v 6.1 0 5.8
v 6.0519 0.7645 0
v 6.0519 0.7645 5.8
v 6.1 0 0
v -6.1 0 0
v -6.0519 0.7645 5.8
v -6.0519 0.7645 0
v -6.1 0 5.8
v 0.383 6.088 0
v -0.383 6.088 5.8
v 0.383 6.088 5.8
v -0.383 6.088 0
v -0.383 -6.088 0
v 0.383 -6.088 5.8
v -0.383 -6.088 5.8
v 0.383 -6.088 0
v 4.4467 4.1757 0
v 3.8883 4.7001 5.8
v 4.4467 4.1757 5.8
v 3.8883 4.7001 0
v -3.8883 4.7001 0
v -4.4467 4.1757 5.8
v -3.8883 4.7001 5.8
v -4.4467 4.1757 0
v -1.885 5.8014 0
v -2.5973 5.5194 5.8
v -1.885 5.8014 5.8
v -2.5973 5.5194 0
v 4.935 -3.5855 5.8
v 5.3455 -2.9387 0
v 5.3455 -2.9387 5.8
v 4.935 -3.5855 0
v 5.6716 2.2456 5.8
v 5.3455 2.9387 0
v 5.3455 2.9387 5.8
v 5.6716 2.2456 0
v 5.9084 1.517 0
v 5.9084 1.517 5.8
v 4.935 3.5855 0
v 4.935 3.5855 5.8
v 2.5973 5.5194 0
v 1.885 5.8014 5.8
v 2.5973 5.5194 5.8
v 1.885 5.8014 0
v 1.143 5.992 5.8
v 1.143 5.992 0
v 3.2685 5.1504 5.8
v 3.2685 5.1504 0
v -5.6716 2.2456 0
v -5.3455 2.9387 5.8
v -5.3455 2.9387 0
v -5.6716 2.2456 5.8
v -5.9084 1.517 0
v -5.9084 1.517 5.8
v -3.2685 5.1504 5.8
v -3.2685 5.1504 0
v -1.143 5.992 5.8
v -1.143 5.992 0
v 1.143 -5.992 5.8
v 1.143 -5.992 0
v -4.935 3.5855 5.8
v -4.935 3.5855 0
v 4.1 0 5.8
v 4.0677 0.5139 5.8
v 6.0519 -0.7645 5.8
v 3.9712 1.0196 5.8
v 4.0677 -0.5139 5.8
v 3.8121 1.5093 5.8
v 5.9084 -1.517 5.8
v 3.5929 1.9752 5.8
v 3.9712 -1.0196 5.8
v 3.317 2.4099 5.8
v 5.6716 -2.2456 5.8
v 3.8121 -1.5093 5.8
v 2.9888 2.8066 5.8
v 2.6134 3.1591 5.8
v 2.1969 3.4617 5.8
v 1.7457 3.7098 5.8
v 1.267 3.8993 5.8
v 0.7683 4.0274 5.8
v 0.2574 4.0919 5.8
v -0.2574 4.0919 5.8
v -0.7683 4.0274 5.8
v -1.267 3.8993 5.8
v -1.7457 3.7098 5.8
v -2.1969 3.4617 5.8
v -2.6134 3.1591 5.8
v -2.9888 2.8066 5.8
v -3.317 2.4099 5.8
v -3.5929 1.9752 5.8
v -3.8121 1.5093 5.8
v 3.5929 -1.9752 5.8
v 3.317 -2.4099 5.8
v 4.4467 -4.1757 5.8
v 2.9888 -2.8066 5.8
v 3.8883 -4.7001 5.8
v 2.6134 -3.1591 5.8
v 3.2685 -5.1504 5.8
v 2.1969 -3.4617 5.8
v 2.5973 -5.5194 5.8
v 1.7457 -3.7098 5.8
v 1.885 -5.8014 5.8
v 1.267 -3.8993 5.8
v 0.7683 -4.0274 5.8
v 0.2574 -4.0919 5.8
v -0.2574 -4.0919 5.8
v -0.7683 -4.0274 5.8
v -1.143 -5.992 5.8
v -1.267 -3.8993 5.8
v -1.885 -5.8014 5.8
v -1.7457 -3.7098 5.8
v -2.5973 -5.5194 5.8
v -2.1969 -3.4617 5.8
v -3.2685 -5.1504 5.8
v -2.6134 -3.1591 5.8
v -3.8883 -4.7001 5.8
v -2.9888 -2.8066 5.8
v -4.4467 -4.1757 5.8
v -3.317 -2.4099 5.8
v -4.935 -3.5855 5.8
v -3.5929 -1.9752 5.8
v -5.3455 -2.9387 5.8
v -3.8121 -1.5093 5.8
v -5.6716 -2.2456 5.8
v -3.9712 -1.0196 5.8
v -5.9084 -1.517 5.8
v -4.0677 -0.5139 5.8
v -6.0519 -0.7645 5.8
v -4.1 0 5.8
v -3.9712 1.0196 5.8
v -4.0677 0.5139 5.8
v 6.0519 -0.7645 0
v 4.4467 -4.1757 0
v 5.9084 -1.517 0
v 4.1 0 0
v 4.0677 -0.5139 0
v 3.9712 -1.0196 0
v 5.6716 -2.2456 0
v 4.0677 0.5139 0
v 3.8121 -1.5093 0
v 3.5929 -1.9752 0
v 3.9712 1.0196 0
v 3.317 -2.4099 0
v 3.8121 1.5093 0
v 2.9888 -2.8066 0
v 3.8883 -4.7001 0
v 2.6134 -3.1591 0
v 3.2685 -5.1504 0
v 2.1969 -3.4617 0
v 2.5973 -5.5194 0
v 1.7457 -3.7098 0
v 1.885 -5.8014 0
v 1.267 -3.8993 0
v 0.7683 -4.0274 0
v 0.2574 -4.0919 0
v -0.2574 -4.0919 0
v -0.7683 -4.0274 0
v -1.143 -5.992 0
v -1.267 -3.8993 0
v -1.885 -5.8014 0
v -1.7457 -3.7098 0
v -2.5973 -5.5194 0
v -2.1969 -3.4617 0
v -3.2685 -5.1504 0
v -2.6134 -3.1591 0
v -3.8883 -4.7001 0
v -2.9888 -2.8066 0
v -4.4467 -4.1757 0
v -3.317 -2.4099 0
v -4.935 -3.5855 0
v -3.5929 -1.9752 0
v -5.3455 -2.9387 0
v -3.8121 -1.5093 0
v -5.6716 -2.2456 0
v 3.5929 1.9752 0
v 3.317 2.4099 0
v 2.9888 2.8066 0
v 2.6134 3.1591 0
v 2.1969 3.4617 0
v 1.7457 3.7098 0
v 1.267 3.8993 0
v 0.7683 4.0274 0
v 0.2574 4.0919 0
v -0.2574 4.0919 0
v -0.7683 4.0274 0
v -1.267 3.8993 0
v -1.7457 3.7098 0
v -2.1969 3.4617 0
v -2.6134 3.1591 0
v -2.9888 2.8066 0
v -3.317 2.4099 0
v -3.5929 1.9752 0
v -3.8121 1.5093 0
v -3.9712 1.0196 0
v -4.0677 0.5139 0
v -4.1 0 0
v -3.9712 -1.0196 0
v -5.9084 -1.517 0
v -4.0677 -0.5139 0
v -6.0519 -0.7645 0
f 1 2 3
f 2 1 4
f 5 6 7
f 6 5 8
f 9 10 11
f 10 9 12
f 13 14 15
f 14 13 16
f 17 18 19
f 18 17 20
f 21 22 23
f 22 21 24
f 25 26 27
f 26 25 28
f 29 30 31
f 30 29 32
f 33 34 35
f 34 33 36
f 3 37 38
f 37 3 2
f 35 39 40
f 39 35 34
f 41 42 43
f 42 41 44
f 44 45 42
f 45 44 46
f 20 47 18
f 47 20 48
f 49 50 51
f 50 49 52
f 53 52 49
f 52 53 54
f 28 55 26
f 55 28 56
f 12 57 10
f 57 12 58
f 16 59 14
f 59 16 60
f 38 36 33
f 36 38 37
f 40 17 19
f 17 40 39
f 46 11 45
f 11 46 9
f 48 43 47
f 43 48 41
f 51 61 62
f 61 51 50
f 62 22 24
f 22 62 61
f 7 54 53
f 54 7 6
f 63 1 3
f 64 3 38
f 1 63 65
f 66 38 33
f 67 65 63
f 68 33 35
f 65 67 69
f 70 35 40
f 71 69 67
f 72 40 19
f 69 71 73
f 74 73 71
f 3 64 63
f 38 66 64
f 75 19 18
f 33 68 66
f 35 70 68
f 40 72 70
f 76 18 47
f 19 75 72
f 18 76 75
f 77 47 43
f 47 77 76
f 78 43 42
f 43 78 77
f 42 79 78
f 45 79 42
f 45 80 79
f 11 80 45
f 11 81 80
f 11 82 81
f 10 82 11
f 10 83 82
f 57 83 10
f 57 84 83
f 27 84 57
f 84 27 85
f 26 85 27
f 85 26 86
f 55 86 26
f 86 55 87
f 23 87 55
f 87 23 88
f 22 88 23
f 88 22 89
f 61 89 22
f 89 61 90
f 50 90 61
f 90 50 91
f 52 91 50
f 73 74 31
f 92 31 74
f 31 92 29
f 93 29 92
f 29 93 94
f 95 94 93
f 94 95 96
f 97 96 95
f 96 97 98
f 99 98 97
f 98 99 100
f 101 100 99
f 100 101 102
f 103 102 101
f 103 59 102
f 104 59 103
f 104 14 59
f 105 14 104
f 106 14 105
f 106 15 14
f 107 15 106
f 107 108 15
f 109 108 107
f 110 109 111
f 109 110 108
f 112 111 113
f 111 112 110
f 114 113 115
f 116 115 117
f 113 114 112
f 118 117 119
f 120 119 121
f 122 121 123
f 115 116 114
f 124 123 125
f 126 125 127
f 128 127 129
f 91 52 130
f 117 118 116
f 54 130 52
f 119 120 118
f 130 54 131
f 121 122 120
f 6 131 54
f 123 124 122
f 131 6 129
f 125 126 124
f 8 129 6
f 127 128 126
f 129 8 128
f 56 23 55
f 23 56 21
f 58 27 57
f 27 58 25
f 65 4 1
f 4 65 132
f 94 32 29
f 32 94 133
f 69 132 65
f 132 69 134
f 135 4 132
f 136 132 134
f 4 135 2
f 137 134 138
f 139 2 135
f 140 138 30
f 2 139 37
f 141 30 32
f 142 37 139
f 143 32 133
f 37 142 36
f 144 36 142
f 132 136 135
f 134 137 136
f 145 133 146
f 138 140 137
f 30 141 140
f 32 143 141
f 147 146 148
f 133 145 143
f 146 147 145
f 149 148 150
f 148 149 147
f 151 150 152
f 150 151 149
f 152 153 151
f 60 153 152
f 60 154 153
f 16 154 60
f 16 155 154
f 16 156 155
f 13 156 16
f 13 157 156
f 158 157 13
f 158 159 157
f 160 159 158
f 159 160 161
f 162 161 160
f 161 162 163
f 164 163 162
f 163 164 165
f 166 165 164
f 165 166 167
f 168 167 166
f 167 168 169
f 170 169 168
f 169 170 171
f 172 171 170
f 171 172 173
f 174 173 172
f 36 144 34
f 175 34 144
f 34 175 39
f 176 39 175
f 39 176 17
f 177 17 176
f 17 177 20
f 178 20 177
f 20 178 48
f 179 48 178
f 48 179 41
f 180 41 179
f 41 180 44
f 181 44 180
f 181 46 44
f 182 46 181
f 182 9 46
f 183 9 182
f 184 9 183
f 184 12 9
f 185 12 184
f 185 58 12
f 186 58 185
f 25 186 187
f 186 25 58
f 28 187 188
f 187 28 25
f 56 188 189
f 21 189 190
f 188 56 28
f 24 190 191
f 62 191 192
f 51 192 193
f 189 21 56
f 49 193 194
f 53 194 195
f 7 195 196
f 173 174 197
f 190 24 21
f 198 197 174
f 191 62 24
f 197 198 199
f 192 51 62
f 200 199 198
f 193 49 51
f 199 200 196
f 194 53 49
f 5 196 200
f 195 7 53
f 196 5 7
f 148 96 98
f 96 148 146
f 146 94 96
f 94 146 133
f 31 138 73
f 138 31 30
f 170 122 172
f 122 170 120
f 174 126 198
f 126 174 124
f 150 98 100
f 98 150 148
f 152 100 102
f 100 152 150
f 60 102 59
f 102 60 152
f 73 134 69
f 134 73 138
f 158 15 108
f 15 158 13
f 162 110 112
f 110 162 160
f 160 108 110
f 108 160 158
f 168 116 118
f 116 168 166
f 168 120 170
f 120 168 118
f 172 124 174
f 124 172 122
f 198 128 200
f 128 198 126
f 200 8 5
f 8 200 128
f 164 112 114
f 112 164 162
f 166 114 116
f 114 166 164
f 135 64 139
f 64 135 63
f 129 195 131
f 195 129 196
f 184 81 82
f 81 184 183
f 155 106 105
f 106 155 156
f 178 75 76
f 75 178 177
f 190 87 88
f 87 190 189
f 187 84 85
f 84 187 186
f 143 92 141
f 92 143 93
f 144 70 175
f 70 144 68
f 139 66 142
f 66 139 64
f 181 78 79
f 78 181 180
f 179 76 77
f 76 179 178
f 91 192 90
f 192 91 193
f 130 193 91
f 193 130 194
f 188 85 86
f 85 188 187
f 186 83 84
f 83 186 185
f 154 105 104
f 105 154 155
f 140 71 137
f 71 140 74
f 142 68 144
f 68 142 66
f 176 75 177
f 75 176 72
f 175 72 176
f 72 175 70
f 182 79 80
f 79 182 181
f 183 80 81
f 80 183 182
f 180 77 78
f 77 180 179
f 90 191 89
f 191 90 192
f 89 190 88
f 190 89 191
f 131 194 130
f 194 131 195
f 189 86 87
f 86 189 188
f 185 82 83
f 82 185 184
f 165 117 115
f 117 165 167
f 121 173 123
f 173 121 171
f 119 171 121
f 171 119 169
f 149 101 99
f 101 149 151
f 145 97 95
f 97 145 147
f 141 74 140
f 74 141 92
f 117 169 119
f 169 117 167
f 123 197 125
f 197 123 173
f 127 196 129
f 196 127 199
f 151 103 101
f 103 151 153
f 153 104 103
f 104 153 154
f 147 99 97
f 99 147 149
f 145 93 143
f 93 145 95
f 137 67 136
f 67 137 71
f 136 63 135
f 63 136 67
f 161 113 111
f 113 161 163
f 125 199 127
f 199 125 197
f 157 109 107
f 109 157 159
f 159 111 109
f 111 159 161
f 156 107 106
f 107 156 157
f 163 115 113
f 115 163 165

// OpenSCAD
// file: ../parameters.scad
maximum_printable_size = 150;

layer_thickness = 0.3;
global_clearance = 0.5;


//Screw diameter and nut for M10 [mm]
M10_screw_diameter = 10.4;
M10_head_height = 10;
M10_head_diameter = 16+0.5;
M10_nut_height = 10.5;
M10_nut_diameter = 25.5;
M10_nut_pocket = 22.3;

//Screw diameter for M8 [mm]
M8_screw_diameter = 8.6;
M8_head_height = 8;
M8_head_diameter = 13.5;
M8_nut_height = 7.5;
M8_square_nut_thin_height = 4.5;
M8_nut_diameter = 14.4 + 0.5;
M8_nut_pocket = 13 + 0.5;
M8_washer_diameter = 16;
M8_washer_thickness = 1.5;


//Screw diameter and nut for M6 [mm]
M6_screw_diameter=6.5;
M6_head_diameter = 10+0.5;
M6_head_height = 6;
M6_nut_height = 4.9;
M6_nut_diameter = 11.8;
M6_nut_pocket = 10.4;
M6_square_nut_height = 3;
M6_square_nut_diameter = 10;
M6_washer_thickness = 1.6;

//Screw diameter and nut for M5 [mm]
M5_screw_diameter=5.5;
M5_head_height = 5;
M5_head_diameter = 13+0.5;
M5_nut_height = 4.5;
M5_nut_diameter = 9.4;
M5_nut_pocket = 8.4;

//Screw diameter and nut for M4 [mm]
M4_screw_diameter=4.5;
M4_screw_head_height = 4;
M4_nut_height = 3.2;
M4_nut_diameter = 8.4;
M4_nut_pocket = 7.5;

//Screw diameter and nut for M3 [mm]
M3_screw_diameter = 3.2;
M3_nut_height = 2.7;
M3_nut_diameter = 6.6;
M3_nut_pocket = 5.6;
M3_screw_head_height = 3;

//Screw diameter and nut for M2,5 [mm]
M2_5_screw_diameter = 2.7;
M2_5_nut_height = 2.3;
M2_5_nut_diameter = 6;
M2_5_nut_pocket = 5.5;

// kulove lozisko

bearing_efsm_08_h = 33+1;
bearing_efsm_08_m = 22;
bearing_efsm_08_db = 18;
bearing_efsm_08_ag = 10.5;
bearing_efsm_08_n = M4_screw_diameter;
bearing_efsm_08_a1 = 5.5;
bearing_efsm_08_d = 8.25;
bearing_efsm_08_B = 8; // ball height

bearing_efsm_10_h = 38+1;
bearing_efsm_10_m = 26;
bearing_efsm_10_db = 21.9;
bearing_efsm_10_ag = 12+0.2;
bearing_efsm_10_n = M5_screw_diameter;
bearing_efsm_10_a1 = 6.5;
bearing_efsm_10_d = 10.25;


bearing_efsm_12_width = 40+1;
bearing_efsm_12_h = bearing_efsm_12_width;
bearing_efsm_12_boltd = 28/2; // polovina vzdalenosti mezi srouby
bearing_efsm_12_m = bearing_efsm_12_boltd*2;
bearing_efsm_12_db = 25;
bearing_efsm_12_ag = 13;
bearing_efsm_12_a1 = 7;
bearing_efsm_12_n = M5_screw_diameter;
bearing_efsm_12_d = 12.15;
bearing_efsm_12_B = 10; // ball height
bearing_efsm_space = 1;

bearing_efsm_17_width = 54+1;
bearing_efsm_17_h = bearing_efsm_17_width;
bearing_efsm_17_boltd = 38/2; // polovina vzdalenosti mezi srouby
bearing_efsm_17_m = bearing_efsm_17_boltd*2;
bearing_efsm_17_db = 35;
bearing_efsm_17_ag = 18;
bearing_efsm_17_n = M6_screw_diameter;
bearing_efsm_17_a1 = 10;
bearing_efsm_17_B = 17; // ball height

//limcove lozisko
bearing_EFOM_10_L=26; //celkova sirka zakladny
bearing_EFOM_10_d1=10.3;//diametr otvoru real=10 mm
bearing_EFOM_10_dB=22;//diametr vystupku pro ulozeni lozika
bearing_EFOM_10_H=52;//celková delka zakladny
bearing_EFOM_10_J=36;// hole pitch
bearing_EFOM_10_A1=6.5;//vyska pouzdra
bearing_EFOM_10_Ag=12;//celkova vyska
bearing_EFOM_10_N1=5;//sirka otvoru pro sroub
bearing_EFOM_10_N2=8;//delka otvoru pro sroub
bearing_EFOM_10_m=36;//roztec der pro sroub
bearing_EFOM_10_h=9;//vyska lozika


608_bearing_outer_diameter = 22.3;
608_bearing_inner_diameter = 16;
608_bearing_thickness = 7.1;


// 20 KG servo parameters

servo_20kg_axis_offset = 9.375; // jak je osa mimo stredu
servo_20kg_body_x = 42;
servo_20kg_body_y = 21;
servo_20kg_body_z = 40;
servo_20kg_thread_x = 49/2;
servo_20kg_thread_y = 10/2;
servo_20kg_body_below = 10; // jak hluboko je tělo serva pod drzaky na srouby
servo_20kg_below = 25.8; // jak hluboko je páka serva pod drzaky na srouby

servo_20kg_bolt_d = 2.5+0.3;
servo_20kg_nut_d = 5+0.3;


//strain gauge
strain_gauge_width = 12.7;
strain_gauge_length = 75.1;
strain_gauge_screw_distance = 10;

//ALU profile
ALU_profile_width = 30.5;
ALU_profile_holder_wall_thickness = 3;
ALU_profile_groove_width = 8;

//pillow block bearing
//https://www.igus.eu/product/372
//Part no. KSTM-08
KSTM08_screws_distance = 33;         //m
KSTM08_screws_holes_diameter = 4.5;  //d2
KSTM08_flange_thickness = 6;         //h3
KSTM08_case_width = 9;               //C1
KSTM08_case_length = 47;             //a
KSTM08_ball_width = 12;              //B
KSTM08_ball_hole_diameter = 7.85;    //d1


//ložiska pro malý rotor
bearing_outer_diameter = 10.2;    // Rozměr B1 v nákresu s přídavkem na toleranci otvoru
bearing_thickness = 4;        // Rozměr B2 v nákresu
//bearing_shaft_length = 19.5;    // Rozměr B3 v nákresu, Originalni hodnota 19.5
bearing_shaft_length = 20;    // Rozměr B3 v nákresu


//parametry víčka s telemetrickou anténou
S01_sila_materialu=1.2;
S01_vyska_horni_zavit=10;
S01_hloubka_zavitu=4;
S01_prumer_vnitrni=50;
LO_spodni_prumer=17.2;
LO_vyska_bez_krytu=15;
S01_tolerance_zavit=1.5;
R01_vyska_prekryti_statoru=10;

g3_0_cone1 = 70;
g3_0_srcew_dist = 55;



// scale parameters
base_length = 500;
mid_base_width = 500;
mid_base_height = 200;
mid_base_length = 500;
mid_base_x_offset = 50;
base_mid_base_hinge_offset = 50;
tower_height = 185;
tower_angle = atan((mid_base_width/2-ALU_profile_width-10)/tower_height);
tower_arm_length = tower_height/cos(tower_angle);
tower_drag_z_offset = 22;

// calibration device parameters
calibration_arm_x_offset = 140;
calibration_arm_y_offset = 50;
// main file
include <../parameters.scad>

module 888_1003() {
    difference() {
        cylinder(d=8+0.2+4, h=20-608_bearing_thickness*2, $fn=50);
        
        translate([0, 0, -ALU_profile_holder_wall_thickness])
        cylinder(d=8+0.2, h=ALU_profile_width+ALU_profile_holder_wall_thickness*4, $fn=50);
    }
}

888_1003();
